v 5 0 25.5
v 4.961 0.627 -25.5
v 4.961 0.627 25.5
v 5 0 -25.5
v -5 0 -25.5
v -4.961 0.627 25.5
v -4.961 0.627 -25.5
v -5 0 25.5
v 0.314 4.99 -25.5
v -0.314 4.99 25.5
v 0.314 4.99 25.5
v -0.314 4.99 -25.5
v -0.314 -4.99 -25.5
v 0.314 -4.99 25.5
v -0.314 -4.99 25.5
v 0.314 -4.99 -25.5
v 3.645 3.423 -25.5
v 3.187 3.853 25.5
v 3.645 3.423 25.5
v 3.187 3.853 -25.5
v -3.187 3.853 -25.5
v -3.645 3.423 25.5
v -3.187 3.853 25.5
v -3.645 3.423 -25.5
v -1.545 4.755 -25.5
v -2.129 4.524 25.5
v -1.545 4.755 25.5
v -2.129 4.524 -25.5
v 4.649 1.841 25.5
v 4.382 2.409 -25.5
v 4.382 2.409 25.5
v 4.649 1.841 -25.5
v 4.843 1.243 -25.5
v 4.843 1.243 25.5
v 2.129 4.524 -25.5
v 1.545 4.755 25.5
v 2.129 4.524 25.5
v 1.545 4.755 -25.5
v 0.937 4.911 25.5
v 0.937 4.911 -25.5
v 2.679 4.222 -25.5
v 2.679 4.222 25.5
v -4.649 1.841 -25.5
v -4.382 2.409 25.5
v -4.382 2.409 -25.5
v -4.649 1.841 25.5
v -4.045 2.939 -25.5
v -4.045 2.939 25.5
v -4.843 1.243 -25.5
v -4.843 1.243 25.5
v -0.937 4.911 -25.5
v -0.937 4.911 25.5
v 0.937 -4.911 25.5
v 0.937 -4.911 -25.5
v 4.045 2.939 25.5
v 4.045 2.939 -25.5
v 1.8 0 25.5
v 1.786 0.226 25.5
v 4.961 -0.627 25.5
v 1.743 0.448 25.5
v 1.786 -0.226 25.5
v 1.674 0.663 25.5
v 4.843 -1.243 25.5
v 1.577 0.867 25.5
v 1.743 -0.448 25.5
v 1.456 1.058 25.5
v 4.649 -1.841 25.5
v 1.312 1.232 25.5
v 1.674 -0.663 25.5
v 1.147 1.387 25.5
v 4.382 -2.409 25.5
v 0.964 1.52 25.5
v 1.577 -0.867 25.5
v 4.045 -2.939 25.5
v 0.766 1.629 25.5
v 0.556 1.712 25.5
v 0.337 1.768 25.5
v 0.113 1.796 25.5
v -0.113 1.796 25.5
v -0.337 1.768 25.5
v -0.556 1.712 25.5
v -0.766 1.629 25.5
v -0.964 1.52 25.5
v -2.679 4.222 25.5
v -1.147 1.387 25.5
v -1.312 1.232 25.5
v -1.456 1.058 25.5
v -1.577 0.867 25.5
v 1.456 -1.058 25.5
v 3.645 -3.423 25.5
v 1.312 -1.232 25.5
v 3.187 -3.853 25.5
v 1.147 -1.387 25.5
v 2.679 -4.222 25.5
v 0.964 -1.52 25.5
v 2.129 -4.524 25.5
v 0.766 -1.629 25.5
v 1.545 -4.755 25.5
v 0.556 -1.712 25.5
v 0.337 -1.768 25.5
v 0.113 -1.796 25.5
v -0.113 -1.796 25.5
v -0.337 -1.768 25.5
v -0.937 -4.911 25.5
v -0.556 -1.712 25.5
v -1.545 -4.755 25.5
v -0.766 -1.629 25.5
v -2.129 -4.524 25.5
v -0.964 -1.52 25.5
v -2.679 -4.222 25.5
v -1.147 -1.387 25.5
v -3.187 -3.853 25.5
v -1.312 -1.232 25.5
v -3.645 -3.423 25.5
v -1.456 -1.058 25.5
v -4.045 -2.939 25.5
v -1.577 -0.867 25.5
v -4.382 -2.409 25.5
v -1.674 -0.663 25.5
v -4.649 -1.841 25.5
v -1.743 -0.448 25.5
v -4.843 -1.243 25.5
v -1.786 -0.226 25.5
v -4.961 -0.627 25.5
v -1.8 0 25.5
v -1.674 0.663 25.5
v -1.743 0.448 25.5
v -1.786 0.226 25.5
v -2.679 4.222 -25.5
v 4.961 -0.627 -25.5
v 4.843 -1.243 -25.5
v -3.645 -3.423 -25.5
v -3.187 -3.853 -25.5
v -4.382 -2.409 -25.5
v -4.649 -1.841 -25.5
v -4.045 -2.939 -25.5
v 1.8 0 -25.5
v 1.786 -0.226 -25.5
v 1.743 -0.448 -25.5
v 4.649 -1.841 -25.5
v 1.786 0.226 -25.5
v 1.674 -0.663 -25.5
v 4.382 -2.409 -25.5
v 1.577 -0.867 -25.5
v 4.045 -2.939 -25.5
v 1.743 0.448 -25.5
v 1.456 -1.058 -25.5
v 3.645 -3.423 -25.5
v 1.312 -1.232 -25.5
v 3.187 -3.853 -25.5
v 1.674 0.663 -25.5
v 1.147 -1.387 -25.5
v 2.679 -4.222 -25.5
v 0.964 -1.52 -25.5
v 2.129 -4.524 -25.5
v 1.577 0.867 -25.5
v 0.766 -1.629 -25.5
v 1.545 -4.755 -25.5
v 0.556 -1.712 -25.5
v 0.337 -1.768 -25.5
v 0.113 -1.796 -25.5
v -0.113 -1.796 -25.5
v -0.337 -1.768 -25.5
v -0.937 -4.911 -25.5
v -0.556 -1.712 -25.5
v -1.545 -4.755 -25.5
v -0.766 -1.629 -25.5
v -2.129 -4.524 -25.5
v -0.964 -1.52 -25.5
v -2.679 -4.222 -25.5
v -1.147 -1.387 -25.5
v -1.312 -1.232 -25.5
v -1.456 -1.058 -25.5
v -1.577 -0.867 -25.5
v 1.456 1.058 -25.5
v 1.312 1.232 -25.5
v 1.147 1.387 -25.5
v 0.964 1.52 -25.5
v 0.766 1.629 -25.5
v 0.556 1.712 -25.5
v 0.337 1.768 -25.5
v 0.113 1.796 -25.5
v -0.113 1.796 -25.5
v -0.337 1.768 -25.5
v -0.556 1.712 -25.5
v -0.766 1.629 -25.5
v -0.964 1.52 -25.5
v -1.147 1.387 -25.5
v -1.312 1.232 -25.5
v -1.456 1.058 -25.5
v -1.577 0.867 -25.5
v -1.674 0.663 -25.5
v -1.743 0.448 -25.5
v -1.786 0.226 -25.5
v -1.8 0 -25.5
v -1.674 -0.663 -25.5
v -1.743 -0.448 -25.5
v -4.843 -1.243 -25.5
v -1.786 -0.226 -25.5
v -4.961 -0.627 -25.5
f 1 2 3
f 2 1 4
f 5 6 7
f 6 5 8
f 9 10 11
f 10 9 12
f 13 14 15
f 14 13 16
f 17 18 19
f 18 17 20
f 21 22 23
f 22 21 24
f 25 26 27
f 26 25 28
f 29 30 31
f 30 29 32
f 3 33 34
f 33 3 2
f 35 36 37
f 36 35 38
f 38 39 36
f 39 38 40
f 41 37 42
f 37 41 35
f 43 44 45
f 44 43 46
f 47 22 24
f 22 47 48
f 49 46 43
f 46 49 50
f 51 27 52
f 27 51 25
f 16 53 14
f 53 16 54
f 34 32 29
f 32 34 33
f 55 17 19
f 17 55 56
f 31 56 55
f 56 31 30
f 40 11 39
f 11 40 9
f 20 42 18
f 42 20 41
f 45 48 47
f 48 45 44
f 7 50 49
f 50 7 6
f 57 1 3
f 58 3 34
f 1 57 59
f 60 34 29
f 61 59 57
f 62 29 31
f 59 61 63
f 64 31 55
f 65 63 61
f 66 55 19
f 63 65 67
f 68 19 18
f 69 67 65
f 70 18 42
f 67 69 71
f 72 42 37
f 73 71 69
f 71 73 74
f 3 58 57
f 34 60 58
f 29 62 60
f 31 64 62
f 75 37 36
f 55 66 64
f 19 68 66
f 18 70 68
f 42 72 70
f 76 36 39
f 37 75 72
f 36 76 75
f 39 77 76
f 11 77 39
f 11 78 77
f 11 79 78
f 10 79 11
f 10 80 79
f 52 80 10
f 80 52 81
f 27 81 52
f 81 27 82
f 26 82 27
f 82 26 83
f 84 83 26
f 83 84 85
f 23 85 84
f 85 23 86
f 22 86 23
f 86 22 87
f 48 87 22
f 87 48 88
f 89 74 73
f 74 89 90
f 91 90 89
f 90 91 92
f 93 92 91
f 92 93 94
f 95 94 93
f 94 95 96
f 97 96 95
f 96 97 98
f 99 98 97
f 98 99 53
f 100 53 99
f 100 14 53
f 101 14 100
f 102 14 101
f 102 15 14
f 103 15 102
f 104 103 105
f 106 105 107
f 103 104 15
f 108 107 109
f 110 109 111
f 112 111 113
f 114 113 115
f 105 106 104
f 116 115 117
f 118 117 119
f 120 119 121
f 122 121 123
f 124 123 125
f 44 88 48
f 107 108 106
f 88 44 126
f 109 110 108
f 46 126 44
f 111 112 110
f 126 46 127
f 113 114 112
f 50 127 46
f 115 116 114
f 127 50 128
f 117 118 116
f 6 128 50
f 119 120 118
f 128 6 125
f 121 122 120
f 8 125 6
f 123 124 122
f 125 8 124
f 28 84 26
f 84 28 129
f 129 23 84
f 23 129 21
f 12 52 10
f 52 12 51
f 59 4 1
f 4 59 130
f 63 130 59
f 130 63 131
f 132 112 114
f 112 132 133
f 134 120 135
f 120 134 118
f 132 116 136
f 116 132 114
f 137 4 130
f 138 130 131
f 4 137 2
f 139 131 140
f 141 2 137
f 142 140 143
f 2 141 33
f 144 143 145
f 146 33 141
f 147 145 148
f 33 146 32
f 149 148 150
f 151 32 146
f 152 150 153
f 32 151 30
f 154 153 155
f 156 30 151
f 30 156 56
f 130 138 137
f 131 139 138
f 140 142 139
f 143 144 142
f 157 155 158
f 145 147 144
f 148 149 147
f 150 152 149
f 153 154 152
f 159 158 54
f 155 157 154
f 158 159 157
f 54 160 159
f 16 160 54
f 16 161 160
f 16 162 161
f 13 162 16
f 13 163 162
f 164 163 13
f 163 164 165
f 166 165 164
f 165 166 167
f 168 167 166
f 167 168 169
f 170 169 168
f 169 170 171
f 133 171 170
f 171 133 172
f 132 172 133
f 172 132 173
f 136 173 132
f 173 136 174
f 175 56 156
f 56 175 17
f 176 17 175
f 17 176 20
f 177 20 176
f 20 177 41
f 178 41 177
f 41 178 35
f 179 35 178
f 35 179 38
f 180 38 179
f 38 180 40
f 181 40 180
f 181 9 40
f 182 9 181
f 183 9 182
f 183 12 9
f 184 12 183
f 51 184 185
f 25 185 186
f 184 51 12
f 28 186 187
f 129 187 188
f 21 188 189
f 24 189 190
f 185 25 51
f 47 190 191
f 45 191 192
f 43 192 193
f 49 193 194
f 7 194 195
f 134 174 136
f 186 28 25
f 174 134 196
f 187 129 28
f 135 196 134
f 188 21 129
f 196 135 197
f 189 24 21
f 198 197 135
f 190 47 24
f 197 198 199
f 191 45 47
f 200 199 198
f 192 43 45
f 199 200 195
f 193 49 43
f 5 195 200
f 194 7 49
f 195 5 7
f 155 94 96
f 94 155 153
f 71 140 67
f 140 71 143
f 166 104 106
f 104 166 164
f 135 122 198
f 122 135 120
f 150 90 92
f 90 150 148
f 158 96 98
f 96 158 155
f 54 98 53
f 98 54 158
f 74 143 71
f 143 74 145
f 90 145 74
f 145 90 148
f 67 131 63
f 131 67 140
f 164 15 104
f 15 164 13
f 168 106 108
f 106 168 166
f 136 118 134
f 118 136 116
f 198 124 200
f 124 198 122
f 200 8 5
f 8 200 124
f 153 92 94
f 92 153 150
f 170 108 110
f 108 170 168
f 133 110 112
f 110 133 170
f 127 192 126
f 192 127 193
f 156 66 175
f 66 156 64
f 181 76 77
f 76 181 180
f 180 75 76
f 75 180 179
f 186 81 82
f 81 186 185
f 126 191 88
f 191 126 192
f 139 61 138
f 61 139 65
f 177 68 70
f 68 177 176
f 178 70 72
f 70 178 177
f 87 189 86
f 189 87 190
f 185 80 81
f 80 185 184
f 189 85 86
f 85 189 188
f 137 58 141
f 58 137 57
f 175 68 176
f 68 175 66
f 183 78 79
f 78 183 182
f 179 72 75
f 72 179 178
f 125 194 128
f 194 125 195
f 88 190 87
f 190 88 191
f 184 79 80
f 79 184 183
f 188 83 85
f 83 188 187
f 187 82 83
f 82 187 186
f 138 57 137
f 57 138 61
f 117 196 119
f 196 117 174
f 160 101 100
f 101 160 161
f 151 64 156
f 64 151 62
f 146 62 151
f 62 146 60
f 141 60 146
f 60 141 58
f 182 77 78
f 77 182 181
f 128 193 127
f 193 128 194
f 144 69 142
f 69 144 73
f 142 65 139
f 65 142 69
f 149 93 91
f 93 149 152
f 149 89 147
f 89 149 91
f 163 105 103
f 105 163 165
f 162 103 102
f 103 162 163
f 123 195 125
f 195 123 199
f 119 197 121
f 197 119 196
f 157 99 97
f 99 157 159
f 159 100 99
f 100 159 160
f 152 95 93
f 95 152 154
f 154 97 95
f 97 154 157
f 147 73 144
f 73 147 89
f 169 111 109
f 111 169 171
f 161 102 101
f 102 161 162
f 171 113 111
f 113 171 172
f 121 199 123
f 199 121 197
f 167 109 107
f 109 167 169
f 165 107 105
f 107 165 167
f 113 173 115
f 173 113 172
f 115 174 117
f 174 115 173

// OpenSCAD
$fn = 50;


difference() {
	union() {
		translate(v = [0, 0, -25.5000000000]) {
			cylinder(h = 51, r = 5.0000000000);
		}
	}
	union() {
		translate(v = [0, 0, -100.0000000000]) {
			cylinder(h = 200, r = 1.8000000000);
		}
	}
}
